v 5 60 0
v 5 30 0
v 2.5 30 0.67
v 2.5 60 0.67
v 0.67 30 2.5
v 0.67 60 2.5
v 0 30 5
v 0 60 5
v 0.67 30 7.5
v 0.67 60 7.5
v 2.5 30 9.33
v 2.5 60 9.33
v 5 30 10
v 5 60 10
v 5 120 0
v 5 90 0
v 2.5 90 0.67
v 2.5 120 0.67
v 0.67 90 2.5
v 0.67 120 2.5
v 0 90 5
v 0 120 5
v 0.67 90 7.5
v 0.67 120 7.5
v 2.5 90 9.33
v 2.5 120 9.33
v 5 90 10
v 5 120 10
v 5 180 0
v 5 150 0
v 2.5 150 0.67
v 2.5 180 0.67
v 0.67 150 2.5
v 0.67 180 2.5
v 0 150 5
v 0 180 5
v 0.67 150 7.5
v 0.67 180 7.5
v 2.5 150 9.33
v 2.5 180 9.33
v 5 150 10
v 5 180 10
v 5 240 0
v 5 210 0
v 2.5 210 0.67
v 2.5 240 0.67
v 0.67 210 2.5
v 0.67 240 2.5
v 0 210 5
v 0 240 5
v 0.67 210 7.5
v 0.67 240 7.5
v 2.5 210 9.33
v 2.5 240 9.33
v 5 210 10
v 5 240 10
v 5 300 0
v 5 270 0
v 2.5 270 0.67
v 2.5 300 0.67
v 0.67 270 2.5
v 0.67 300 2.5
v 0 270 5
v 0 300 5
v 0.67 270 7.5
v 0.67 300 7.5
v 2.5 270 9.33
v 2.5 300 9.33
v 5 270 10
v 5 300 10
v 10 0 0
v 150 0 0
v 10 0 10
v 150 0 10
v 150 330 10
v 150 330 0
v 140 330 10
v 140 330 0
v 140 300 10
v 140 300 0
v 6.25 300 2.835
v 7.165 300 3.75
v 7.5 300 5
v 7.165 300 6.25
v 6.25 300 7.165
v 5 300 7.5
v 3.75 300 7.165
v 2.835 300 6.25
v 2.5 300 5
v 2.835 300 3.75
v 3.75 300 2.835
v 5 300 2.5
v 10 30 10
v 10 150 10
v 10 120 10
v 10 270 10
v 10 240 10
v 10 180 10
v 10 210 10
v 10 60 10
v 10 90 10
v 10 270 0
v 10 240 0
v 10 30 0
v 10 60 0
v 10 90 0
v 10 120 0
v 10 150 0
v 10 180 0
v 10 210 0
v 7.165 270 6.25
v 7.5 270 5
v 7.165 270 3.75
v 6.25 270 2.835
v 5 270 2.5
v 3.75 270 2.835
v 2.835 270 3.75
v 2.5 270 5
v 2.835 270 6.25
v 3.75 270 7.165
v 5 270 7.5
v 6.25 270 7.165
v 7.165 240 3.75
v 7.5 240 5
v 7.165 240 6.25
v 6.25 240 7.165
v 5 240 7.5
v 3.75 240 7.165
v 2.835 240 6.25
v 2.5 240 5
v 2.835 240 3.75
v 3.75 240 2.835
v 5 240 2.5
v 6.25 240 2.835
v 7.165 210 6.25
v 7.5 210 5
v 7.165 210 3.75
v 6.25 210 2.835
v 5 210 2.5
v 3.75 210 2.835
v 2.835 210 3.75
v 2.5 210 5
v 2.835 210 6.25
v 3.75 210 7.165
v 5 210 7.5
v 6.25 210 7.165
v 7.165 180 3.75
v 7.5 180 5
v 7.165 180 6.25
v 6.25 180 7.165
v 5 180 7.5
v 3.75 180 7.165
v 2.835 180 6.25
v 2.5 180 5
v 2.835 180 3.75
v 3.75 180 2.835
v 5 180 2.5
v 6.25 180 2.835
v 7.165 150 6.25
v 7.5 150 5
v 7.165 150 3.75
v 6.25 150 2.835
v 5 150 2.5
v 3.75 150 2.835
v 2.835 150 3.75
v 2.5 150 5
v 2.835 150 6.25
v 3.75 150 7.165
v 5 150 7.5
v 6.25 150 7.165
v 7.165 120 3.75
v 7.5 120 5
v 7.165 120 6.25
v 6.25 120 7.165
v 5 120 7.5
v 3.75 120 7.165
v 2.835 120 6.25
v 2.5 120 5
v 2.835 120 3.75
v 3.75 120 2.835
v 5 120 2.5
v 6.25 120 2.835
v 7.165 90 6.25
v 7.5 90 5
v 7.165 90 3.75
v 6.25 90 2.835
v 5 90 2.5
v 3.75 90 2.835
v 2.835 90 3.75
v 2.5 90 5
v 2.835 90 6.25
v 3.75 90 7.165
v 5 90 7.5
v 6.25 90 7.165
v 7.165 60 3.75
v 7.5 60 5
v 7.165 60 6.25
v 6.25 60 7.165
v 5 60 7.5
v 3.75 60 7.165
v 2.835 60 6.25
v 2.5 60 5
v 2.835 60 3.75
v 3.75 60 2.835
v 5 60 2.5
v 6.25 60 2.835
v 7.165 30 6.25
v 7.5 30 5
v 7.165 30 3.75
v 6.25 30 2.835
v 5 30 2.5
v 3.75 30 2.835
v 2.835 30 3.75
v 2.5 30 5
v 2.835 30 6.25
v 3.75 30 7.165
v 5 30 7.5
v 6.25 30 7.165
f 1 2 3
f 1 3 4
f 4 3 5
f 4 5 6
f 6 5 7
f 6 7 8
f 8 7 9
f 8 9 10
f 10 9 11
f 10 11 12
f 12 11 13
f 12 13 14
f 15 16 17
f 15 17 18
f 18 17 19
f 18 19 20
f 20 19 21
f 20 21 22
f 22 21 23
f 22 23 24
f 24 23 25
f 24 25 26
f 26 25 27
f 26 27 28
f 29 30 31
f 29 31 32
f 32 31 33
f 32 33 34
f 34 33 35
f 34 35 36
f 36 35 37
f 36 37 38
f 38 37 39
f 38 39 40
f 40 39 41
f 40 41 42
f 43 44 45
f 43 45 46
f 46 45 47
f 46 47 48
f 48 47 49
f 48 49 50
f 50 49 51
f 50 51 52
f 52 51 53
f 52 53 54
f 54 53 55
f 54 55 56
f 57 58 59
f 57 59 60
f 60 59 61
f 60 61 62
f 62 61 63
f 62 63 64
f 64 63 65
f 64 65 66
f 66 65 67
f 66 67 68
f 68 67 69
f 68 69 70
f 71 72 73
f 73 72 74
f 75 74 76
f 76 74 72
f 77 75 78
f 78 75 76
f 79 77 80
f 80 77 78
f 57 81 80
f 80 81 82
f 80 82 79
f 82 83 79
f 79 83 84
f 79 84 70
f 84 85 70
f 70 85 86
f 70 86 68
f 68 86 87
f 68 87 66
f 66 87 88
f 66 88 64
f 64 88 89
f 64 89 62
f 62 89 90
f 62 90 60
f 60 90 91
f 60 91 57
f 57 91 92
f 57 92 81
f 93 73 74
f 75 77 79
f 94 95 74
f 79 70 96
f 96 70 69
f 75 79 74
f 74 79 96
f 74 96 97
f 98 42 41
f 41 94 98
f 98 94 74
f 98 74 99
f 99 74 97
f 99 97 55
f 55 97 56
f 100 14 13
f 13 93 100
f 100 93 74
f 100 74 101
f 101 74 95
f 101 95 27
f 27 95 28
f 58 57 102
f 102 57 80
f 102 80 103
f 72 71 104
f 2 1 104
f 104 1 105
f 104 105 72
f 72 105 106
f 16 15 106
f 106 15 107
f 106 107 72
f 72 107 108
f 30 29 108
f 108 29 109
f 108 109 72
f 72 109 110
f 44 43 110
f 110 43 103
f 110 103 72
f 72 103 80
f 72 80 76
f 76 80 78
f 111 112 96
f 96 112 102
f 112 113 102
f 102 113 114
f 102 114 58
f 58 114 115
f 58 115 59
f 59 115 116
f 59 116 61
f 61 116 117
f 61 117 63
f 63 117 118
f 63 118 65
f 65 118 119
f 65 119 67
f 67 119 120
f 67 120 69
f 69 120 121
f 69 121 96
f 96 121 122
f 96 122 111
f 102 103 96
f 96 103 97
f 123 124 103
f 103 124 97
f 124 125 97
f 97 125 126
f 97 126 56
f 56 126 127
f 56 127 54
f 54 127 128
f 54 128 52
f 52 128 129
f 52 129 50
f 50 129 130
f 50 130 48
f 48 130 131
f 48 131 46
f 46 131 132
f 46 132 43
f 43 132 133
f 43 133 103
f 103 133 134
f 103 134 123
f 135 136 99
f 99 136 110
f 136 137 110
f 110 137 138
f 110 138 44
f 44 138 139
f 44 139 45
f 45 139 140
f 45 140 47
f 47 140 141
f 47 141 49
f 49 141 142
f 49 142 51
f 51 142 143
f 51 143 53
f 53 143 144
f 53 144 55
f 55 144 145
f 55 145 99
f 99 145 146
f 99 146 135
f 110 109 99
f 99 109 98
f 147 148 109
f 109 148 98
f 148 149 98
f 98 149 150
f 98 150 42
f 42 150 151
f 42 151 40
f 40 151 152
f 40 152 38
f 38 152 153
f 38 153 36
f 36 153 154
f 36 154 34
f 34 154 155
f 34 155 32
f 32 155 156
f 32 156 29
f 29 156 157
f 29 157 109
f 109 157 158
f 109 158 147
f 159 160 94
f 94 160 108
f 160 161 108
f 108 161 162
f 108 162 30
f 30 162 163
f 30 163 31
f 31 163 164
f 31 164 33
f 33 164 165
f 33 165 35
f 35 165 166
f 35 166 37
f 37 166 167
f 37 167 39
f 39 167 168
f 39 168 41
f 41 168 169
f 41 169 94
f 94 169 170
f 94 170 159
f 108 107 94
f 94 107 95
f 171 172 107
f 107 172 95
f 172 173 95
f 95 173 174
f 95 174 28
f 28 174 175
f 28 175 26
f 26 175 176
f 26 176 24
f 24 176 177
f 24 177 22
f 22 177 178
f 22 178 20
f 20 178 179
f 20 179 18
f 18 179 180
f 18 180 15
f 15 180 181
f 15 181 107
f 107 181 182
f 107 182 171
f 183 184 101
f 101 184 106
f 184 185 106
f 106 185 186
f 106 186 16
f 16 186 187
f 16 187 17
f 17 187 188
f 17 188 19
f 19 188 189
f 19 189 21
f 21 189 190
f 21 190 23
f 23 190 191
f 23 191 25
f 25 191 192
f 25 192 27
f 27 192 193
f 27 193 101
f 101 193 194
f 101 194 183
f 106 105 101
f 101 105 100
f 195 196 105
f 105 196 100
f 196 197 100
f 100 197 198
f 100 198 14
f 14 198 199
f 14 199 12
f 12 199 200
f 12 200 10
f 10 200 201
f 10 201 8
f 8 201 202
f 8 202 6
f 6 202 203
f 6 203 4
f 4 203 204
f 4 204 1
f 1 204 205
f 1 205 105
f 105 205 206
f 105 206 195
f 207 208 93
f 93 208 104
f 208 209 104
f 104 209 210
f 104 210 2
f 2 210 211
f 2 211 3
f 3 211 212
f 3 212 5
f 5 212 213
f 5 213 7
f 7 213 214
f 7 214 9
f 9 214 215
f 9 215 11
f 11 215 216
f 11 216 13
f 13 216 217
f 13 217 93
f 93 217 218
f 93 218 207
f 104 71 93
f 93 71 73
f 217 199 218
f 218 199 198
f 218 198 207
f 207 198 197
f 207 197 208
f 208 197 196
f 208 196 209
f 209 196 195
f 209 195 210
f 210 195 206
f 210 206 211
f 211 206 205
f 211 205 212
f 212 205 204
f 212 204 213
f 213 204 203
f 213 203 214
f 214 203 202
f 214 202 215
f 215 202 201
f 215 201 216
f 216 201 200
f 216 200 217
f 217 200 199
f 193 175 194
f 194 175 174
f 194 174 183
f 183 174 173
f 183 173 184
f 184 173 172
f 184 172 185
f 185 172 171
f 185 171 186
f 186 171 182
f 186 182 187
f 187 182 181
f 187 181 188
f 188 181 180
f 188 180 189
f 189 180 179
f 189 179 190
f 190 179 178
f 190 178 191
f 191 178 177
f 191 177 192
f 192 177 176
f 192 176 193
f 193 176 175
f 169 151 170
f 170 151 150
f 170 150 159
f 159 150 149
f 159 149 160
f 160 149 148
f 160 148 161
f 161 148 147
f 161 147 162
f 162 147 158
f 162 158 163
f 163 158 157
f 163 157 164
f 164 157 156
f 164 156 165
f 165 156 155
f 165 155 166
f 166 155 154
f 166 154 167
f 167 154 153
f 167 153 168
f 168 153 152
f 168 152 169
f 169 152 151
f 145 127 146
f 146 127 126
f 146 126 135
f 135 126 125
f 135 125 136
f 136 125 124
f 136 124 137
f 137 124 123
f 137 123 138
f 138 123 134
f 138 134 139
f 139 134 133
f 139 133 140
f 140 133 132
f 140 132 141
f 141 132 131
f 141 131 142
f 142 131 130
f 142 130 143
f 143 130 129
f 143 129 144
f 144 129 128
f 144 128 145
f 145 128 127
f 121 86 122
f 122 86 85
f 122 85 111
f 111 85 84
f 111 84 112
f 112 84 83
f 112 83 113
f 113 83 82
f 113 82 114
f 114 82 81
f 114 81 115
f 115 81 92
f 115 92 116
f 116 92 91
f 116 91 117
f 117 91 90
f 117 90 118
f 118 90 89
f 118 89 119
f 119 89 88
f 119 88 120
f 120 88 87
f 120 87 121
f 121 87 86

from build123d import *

# Parameters (mm, degrees)
BOSS_EXTRUDE1_DEPTH = 10
SKETCH2_W           = 10
SKETCH2_H           = 30
CUT_EXTRUDE1_DEPTH  = 363.629287289
SKETCH3_R           = 2.5
CUT_EXTRUDE2_DEPTH  = 336.559234711
FILLET3_RADIUS      = 5
FILLET3_LENGTH      = 30
FILLET4_RADIUS      = 5
FILLET4_LENGTH      = 30
FILLET5_RADIUS      = 5
FILLET5_LENGTH      = 30
FILLET6_RADIUS      = 5
FILLET6_LENGTH      = 30
FILLET7_RADIUS      = 5
FILLET7_LENGTH      = 30


with BuildPart() as part:
    # Sketch1 → Boss-Extrude1 (new body)
    with BuildSketch(Plane.XY):
        Polygon((0, 0), (150, 0), (150, 206.30867798), (150, 330), (140, 330), (140, 300), (0, 300), align=None)
    extrude(amount=BOSS_EXTRUDE1_DEPTH)

    # Sketch2 → Cut-Extrude1 (cut, through all)
    with BuildSketch(Plane.XY.offset(10)):
        with Locations((5, 75)):
            Rectangle(SKETCH2_W, SKETCH2_H)
        with Locations((5, 15)):
            Rectangle(SKETCH2_W, SKETCH2_H)
        with Locations((5, 135)):
            Rectangle(SKETCH2_W, SKETCH2_H)
        with Locations((5, 195)):
            Rectangle(SKETCH2_W, SKETCH2_H)
        with Locations((5, 255)):
            Rectangle(SKETCH2_W, SKETCH2_H)
    extrude(amount=-CUT_EXTRUDE1_DEPTH, mode=Mode.SUBTRACT)

    # Sketch3 → Cut-Extrude2 (cut, through all)
    with BuildSketch(Plane(origin=(0, 300, 0), x_dir=(1, 0, 0), z_dir=(0, 1, 0))):
        with Locations(Location((5, -5, 0), (0, 0, 270))):
            Circle(SKETCH3_R)
    extrude(amount=-CUT_EXTRUDE2_DEPTH, mode=Mode.SUBTRACT)

    # Fillet3: full round fillet: the end face becomes a half cylinder, R = half its width
    fillet3_face = Plane((0, 285, 5), x_dir=(0, -1, 0), z_dir=(-1, 0, 0))  # on the end face: x along it, z out of the body
    fillet3_slab = fillet3_face.offset(-FILLET3_RADIUS / 2) * Box(FILLET3_LENGTH, 2 * FILLET3_RADIUS, FILLET3_RADIUS, mode=Mode.PRIVATE)  # the body's end, R deep
    fillet3_round = Plane((5, 285, 5), x_dir=(-1, 0, 0), z_dir=(0, -1, 0)) * Cylinder(FILLET3_RADIUS, FILLET3_LENGTH, mode=Mode.PRIVATE)  # its axis R under the face
    add(fillet3_slab - fillet3_round, mode=Mode.SUBTRACT)

    # Fillet4: full round fillet: the end face becomes a half cylinder, R = half its width
    fillet4_face = Plane((0, 225, 5), x_dir=(0, -1, 0), z_dir=(-1, 0, 0))  # on the end face: x along it, z out of the body
    fillet4_slab = fillet4_face.offset(-FILLET4_RADIUS / 2) * Box(FILLET4_LENGTH, 2 * FILLET4_RADIUS, FILLET4_RADIUS, mode=Mode.PRIVATE)  # the body's end, R deep
    fillet4_round = Plane((5, 225, 5), x_dir=(-1, 0, 0), z_dir=(0, -1, 0)) * Cylinder(FILLET4_RADIUS, FILLET4_LENGTH, mode=Mode.PRIVATE)  # its axis R under the face
    add(fillet4_slab - fillet4_round, mode=Mode.SUBTRACT)

    # Fillet5: full round fillet: the end face becomes a half cylinder, R = half its width
    fillet5_face = Plane((0, 165, 5), x_dir=(0, -1, 0), z_dir=(-1, 0, 0))  # on the end face: x along it, z out of the body
    fillet5_slab = fillet5_face.offset(-FILLET5_RADIUS / 2) * Box(FILLET5_LENGTH, 2 * FILLET5_RADIUS, FILLET5_RADIUS, mode=Mode.PRIVATE)  # the body's end, R deep
    fillet5_round = Plane((5, 165, 5), x_dir=(-1, 0, 0), z_dir=(0, -1, 0)) * Cylinder(FILLET5_RADIUS, FILLET5_LENGTH, mode=Mode.PRIVATE)  # its axis R under the face
    add(fillet5_slab - fillet5_round, mode=Mode.SUBTRACT)

    # Fillet6: full round fillet: the end face becomes a half cylinder, R = half its width
    fillet6_face = Plane((0, 105, 5), x_dir=(0, -1, 0), z_dir=(-1, 0, 0))  # on the end face: x along it, z out of the body
    fillet6_slab = fillet6_face.offset(-FILLET6_RADIUS / 2) * Box(FILLET6_LENGTH, 2 * FILLET6_RADIUS, FILLET6_RADIUS, mode=Mode.PRIVATE)  # the body's end, R deep
    fillet6_round = Plane((5, 105, 5), x_dir=(-1, 0, 0), z_dir=(0, -1, 0)) * Cylinder(FILLET6_RADIUS, FILLET6_LENGTH, mode=Mode.PRIVATE)  # its axis R under the face
    add(fillet6_slab - fillet6_round, mode=Mode.SUBTRACT)

    # Fillet7: full round fillet: the end face becomes a half cylinder, R = half its width
    fillet7_face = Plane((0, 45, 5), x_dir=(0, -1, 0), z_dir=(-1, 0, 0))  # on the end face: x along it, z out of the body
    fillet7_slab = fillet7_face.offset(-FILLET7_RADIUS / 2) * Box(FILLET7_LENGTH, 2 * FILLET7_RADIUS, FILLET7_RADIUS, mode=Mode.PRIVATE)  # the body's end, R deep
    fillet7_round = Plane((5, 45, 5), x_dir=(-1, 0, 0), z_dir=(0, -1, 0)) * Cylinder(FILLET7_RADIUS, FILLET7_LENGTH, mode=Mode.PRIVATE)  # its axis R under the face
    add(fillet7_slab - fillet7_round, mode=Mode.SUBTRACT)


solid = part.part
